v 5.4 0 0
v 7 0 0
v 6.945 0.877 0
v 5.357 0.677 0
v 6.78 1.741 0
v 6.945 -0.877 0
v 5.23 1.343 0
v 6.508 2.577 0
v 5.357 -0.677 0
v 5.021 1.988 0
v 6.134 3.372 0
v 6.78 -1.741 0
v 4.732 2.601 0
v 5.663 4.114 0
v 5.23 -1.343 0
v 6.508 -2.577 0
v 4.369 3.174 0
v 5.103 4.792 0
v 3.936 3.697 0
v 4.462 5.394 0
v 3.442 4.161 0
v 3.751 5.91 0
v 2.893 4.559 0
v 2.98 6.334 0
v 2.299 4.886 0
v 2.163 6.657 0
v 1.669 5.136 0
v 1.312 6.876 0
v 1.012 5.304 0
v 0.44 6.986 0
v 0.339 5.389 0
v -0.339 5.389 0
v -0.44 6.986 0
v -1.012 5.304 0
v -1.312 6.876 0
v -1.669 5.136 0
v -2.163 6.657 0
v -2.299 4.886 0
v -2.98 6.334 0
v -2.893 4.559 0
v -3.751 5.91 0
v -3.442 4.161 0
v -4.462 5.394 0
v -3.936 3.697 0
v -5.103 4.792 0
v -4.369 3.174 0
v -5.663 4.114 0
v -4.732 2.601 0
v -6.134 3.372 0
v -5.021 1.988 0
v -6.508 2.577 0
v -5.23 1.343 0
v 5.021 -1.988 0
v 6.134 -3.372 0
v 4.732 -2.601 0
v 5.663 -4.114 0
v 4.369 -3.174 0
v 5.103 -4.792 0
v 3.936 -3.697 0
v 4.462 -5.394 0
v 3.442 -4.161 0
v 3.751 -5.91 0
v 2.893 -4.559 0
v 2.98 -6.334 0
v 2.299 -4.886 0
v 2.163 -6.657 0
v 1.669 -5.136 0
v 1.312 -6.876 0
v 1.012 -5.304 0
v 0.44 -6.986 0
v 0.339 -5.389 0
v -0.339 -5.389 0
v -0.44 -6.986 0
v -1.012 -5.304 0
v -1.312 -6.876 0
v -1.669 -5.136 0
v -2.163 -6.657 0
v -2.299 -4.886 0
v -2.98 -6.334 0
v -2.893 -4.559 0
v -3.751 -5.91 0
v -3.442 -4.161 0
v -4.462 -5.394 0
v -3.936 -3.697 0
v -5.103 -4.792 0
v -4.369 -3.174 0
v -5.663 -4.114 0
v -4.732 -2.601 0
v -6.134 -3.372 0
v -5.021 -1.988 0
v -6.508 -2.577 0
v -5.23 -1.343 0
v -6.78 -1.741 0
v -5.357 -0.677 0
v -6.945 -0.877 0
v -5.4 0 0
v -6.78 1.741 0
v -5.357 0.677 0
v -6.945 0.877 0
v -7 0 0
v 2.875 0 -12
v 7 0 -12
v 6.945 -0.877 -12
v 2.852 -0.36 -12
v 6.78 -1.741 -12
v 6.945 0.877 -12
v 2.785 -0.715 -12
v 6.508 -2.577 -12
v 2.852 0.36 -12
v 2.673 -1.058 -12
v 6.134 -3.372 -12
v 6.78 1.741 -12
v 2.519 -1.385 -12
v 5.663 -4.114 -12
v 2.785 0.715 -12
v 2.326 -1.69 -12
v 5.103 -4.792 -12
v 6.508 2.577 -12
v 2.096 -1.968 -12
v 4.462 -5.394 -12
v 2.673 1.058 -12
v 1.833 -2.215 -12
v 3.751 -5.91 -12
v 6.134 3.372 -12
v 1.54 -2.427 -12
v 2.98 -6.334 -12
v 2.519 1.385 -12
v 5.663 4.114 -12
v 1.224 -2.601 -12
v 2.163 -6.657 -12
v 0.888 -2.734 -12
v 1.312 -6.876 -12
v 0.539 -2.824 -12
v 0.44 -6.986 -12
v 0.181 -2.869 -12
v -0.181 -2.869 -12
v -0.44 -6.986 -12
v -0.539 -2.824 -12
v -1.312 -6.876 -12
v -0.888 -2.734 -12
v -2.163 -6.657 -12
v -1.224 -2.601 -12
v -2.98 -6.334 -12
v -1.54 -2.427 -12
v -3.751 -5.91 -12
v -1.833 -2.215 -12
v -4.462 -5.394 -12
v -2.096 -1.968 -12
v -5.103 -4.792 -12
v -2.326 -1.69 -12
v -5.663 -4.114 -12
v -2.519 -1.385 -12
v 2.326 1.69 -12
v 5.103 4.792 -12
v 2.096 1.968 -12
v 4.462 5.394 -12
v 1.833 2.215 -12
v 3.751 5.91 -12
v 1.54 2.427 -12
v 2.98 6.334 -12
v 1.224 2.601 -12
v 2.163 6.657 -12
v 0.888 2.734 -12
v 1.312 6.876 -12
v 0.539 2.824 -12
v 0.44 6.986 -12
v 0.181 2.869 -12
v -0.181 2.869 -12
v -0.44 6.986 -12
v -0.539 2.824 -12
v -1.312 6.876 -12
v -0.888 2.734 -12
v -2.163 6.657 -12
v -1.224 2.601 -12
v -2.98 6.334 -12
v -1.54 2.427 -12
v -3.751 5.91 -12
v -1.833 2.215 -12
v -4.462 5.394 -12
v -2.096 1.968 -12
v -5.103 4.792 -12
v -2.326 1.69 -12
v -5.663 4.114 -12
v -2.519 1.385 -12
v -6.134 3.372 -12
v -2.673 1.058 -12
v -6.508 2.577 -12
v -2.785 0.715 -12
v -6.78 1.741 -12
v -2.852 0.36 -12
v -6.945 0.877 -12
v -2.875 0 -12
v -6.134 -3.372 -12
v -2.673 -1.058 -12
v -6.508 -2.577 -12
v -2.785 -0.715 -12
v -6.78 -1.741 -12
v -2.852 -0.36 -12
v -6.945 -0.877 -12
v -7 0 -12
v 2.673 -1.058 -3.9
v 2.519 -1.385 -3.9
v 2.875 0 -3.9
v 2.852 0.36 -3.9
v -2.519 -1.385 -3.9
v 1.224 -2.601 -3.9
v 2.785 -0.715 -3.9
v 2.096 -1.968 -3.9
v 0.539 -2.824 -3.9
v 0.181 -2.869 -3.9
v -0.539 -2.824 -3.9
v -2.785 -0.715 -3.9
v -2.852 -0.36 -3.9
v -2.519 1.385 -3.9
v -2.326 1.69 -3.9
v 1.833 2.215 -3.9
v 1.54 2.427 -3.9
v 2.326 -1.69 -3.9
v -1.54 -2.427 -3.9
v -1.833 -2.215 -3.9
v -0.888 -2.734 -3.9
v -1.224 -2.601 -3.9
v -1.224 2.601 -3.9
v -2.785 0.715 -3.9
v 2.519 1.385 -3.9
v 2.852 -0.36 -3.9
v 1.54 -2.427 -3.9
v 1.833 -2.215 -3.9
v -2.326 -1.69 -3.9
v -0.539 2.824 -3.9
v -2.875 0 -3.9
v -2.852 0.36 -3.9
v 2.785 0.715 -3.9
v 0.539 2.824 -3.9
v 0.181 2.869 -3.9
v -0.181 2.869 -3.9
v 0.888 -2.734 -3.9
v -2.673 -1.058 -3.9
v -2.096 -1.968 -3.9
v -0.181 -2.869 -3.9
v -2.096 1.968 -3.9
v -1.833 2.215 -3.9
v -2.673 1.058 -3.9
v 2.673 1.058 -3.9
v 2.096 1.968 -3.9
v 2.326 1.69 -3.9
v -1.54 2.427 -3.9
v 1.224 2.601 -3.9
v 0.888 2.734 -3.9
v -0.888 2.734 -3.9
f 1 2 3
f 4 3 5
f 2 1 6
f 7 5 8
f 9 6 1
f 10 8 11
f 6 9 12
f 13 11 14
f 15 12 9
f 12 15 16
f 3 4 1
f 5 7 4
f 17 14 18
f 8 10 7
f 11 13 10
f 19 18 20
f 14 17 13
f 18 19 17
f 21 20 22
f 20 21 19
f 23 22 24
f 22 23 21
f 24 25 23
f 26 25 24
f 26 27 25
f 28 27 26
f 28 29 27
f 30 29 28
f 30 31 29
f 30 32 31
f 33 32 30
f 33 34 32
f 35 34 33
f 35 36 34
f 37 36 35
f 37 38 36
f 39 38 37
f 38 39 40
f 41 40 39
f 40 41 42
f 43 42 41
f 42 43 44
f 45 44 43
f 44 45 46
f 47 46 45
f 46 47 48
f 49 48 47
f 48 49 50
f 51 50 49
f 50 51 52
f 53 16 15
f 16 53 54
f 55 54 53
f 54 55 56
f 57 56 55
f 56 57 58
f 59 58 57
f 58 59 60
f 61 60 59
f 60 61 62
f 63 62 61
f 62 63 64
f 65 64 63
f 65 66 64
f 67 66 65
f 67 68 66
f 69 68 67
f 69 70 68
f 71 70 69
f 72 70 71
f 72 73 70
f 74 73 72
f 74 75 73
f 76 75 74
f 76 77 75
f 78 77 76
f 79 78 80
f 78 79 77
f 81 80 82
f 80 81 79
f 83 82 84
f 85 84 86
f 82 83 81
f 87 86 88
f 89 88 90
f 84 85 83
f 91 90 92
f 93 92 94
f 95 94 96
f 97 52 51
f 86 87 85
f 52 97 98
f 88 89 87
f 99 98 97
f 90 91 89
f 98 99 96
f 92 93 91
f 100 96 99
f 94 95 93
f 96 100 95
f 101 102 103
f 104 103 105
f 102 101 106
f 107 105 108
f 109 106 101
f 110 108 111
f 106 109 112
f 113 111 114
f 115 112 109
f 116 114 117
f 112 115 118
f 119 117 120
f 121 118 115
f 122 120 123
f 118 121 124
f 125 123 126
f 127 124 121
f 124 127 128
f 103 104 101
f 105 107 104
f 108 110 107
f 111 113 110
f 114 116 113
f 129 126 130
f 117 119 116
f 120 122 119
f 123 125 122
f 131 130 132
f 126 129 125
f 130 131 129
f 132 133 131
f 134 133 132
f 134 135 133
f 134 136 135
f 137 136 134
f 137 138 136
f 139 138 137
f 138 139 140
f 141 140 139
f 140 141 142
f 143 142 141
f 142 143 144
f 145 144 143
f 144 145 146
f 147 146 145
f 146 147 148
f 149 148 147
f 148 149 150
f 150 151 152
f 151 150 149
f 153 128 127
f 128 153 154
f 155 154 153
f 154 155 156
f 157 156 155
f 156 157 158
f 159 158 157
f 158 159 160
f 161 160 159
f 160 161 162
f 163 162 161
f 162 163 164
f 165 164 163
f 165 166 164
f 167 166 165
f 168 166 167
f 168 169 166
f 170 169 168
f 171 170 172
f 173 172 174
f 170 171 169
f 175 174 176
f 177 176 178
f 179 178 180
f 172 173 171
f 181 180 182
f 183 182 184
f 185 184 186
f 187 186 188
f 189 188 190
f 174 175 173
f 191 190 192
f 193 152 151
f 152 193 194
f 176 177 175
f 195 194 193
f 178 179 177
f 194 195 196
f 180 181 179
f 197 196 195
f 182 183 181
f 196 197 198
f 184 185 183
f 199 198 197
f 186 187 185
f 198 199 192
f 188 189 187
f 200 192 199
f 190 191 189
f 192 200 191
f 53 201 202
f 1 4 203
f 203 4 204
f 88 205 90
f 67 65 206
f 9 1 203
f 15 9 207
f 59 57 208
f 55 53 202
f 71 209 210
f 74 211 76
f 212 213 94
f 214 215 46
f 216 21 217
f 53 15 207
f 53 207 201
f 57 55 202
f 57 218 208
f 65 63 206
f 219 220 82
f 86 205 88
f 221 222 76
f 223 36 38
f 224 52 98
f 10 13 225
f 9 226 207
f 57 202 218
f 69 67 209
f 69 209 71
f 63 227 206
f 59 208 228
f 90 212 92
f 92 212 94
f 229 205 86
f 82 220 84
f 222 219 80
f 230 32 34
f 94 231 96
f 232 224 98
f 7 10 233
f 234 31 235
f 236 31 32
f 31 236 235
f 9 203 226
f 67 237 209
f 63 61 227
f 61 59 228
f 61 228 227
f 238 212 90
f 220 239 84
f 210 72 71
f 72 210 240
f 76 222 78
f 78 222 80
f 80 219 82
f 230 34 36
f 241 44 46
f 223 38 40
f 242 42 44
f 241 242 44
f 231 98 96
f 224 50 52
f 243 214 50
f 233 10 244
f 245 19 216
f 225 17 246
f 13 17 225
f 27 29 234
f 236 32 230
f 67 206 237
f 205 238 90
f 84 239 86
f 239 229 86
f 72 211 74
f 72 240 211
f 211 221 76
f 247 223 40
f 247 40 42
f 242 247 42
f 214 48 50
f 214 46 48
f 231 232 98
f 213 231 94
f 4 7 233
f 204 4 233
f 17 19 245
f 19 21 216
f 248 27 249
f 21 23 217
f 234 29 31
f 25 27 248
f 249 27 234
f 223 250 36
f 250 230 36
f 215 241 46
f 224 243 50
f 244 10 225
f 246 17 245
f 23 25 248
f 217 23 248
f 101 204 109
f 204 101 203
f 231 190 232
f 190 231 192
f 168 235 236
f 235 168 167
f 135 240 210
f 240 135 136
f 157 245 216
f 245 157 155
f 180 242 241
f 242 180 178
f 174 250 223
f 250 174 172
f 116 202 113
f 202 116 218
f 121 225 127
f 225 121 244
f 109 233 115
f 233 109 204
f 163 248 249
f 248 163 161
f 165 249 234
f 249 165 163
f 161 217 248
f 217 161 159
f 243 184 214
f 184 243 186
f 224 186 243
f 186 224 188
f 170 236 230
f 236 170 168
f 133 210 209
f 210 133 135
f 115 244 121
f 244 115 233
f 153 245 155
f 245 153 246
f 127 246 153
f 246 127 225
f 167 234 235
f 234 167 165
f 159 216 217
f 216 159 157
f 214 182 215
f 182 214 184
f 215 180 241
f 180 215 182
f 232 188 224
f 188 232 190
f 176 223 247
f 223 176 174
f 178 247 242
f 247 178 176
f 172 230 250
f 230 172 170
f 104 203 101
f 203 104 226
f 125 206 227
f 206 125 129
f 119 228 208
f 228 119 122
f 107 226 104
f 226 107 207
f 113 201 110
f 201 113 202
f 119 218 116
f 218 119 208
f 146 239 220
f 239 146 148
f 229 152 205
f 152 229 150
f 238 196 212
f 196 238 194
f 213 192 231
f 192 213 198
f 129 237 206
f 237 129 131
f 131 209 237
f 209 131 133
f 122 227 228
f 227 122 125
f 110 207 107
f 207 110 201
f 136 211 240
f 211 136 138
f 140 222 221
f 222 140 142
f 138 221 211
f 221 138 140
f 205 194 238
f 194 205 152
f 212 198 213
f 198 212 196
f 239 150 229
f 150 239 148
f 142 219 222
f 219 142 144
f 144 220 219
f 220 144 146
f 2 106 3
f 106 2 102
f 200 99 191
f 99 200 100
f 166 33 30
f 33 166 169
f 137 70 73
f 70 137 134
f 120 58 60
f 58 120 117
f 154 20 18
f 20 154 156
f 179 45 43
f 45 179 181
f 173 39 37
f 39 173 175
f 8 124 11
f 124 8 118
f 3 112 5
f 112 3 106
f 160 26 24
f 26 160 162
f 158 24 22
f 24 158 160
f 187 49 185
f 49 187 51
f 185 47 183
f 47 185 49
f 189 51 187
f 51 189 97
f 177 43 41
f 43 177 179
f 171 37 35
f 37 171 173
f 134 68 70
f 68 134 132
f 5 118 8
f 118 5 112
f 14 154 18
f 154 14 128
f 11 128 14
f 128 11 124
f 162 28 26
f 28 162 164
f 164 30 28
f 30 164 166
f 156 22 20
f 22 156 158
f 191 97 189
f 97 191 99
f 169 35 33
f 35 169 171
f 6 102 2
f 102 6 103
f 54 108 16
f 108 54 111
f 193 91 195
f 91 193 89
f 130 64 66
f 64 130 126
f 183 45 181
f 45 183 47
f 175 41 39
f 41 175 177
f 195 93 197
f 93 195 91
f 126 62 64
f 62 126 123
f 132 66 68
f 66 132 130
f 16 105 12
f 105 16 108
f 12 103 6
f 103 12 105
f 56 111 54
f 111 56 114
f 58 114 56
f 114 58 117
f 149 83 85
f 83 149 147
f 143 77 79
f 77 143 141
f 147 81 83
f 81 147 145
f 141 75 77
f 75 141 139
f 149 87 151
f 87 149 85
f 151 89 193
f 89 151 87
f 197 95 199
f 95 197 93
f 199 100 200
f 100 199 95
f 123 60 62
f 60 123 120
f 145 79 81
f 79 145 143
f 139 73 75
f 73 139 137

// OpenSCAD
$fn = 50;


difference() {
	union() {
		translate(v = [0, 0, -12.0000000000]) {
			cylinder(h = 12, r = 7.0000000000);
		}
		cylinder(h = 0, r = 16.0000000000);
	}
	union() {
		translate(v = [0, 0, 0]) {
			rotate(a = [0, 0, 0]) {
				difference() {
					union() {
						#translate(v = [0, 0, -12.0000000000]) {
							cylinder(h = 12, r = 2.6000000000);
						}
						#translate(v = [0, 0, -3.9000000000]) {
							cylinder(h = 3.9000000000, r = 7.0000000000, r1 = 2.8750000000, r2 = 5.4000000000);
						}
						#translate(v = [0, 0, -12.0000000000]) {
							cylinder(h = 12, r = 2.8750000000);
						}
						#translate(v = [0, 0, -12.0000000000]) {
							cylinder(h = 12, r = 2.6000000000);
						}
					}
					union();
				}
			}
		}
	}
}
